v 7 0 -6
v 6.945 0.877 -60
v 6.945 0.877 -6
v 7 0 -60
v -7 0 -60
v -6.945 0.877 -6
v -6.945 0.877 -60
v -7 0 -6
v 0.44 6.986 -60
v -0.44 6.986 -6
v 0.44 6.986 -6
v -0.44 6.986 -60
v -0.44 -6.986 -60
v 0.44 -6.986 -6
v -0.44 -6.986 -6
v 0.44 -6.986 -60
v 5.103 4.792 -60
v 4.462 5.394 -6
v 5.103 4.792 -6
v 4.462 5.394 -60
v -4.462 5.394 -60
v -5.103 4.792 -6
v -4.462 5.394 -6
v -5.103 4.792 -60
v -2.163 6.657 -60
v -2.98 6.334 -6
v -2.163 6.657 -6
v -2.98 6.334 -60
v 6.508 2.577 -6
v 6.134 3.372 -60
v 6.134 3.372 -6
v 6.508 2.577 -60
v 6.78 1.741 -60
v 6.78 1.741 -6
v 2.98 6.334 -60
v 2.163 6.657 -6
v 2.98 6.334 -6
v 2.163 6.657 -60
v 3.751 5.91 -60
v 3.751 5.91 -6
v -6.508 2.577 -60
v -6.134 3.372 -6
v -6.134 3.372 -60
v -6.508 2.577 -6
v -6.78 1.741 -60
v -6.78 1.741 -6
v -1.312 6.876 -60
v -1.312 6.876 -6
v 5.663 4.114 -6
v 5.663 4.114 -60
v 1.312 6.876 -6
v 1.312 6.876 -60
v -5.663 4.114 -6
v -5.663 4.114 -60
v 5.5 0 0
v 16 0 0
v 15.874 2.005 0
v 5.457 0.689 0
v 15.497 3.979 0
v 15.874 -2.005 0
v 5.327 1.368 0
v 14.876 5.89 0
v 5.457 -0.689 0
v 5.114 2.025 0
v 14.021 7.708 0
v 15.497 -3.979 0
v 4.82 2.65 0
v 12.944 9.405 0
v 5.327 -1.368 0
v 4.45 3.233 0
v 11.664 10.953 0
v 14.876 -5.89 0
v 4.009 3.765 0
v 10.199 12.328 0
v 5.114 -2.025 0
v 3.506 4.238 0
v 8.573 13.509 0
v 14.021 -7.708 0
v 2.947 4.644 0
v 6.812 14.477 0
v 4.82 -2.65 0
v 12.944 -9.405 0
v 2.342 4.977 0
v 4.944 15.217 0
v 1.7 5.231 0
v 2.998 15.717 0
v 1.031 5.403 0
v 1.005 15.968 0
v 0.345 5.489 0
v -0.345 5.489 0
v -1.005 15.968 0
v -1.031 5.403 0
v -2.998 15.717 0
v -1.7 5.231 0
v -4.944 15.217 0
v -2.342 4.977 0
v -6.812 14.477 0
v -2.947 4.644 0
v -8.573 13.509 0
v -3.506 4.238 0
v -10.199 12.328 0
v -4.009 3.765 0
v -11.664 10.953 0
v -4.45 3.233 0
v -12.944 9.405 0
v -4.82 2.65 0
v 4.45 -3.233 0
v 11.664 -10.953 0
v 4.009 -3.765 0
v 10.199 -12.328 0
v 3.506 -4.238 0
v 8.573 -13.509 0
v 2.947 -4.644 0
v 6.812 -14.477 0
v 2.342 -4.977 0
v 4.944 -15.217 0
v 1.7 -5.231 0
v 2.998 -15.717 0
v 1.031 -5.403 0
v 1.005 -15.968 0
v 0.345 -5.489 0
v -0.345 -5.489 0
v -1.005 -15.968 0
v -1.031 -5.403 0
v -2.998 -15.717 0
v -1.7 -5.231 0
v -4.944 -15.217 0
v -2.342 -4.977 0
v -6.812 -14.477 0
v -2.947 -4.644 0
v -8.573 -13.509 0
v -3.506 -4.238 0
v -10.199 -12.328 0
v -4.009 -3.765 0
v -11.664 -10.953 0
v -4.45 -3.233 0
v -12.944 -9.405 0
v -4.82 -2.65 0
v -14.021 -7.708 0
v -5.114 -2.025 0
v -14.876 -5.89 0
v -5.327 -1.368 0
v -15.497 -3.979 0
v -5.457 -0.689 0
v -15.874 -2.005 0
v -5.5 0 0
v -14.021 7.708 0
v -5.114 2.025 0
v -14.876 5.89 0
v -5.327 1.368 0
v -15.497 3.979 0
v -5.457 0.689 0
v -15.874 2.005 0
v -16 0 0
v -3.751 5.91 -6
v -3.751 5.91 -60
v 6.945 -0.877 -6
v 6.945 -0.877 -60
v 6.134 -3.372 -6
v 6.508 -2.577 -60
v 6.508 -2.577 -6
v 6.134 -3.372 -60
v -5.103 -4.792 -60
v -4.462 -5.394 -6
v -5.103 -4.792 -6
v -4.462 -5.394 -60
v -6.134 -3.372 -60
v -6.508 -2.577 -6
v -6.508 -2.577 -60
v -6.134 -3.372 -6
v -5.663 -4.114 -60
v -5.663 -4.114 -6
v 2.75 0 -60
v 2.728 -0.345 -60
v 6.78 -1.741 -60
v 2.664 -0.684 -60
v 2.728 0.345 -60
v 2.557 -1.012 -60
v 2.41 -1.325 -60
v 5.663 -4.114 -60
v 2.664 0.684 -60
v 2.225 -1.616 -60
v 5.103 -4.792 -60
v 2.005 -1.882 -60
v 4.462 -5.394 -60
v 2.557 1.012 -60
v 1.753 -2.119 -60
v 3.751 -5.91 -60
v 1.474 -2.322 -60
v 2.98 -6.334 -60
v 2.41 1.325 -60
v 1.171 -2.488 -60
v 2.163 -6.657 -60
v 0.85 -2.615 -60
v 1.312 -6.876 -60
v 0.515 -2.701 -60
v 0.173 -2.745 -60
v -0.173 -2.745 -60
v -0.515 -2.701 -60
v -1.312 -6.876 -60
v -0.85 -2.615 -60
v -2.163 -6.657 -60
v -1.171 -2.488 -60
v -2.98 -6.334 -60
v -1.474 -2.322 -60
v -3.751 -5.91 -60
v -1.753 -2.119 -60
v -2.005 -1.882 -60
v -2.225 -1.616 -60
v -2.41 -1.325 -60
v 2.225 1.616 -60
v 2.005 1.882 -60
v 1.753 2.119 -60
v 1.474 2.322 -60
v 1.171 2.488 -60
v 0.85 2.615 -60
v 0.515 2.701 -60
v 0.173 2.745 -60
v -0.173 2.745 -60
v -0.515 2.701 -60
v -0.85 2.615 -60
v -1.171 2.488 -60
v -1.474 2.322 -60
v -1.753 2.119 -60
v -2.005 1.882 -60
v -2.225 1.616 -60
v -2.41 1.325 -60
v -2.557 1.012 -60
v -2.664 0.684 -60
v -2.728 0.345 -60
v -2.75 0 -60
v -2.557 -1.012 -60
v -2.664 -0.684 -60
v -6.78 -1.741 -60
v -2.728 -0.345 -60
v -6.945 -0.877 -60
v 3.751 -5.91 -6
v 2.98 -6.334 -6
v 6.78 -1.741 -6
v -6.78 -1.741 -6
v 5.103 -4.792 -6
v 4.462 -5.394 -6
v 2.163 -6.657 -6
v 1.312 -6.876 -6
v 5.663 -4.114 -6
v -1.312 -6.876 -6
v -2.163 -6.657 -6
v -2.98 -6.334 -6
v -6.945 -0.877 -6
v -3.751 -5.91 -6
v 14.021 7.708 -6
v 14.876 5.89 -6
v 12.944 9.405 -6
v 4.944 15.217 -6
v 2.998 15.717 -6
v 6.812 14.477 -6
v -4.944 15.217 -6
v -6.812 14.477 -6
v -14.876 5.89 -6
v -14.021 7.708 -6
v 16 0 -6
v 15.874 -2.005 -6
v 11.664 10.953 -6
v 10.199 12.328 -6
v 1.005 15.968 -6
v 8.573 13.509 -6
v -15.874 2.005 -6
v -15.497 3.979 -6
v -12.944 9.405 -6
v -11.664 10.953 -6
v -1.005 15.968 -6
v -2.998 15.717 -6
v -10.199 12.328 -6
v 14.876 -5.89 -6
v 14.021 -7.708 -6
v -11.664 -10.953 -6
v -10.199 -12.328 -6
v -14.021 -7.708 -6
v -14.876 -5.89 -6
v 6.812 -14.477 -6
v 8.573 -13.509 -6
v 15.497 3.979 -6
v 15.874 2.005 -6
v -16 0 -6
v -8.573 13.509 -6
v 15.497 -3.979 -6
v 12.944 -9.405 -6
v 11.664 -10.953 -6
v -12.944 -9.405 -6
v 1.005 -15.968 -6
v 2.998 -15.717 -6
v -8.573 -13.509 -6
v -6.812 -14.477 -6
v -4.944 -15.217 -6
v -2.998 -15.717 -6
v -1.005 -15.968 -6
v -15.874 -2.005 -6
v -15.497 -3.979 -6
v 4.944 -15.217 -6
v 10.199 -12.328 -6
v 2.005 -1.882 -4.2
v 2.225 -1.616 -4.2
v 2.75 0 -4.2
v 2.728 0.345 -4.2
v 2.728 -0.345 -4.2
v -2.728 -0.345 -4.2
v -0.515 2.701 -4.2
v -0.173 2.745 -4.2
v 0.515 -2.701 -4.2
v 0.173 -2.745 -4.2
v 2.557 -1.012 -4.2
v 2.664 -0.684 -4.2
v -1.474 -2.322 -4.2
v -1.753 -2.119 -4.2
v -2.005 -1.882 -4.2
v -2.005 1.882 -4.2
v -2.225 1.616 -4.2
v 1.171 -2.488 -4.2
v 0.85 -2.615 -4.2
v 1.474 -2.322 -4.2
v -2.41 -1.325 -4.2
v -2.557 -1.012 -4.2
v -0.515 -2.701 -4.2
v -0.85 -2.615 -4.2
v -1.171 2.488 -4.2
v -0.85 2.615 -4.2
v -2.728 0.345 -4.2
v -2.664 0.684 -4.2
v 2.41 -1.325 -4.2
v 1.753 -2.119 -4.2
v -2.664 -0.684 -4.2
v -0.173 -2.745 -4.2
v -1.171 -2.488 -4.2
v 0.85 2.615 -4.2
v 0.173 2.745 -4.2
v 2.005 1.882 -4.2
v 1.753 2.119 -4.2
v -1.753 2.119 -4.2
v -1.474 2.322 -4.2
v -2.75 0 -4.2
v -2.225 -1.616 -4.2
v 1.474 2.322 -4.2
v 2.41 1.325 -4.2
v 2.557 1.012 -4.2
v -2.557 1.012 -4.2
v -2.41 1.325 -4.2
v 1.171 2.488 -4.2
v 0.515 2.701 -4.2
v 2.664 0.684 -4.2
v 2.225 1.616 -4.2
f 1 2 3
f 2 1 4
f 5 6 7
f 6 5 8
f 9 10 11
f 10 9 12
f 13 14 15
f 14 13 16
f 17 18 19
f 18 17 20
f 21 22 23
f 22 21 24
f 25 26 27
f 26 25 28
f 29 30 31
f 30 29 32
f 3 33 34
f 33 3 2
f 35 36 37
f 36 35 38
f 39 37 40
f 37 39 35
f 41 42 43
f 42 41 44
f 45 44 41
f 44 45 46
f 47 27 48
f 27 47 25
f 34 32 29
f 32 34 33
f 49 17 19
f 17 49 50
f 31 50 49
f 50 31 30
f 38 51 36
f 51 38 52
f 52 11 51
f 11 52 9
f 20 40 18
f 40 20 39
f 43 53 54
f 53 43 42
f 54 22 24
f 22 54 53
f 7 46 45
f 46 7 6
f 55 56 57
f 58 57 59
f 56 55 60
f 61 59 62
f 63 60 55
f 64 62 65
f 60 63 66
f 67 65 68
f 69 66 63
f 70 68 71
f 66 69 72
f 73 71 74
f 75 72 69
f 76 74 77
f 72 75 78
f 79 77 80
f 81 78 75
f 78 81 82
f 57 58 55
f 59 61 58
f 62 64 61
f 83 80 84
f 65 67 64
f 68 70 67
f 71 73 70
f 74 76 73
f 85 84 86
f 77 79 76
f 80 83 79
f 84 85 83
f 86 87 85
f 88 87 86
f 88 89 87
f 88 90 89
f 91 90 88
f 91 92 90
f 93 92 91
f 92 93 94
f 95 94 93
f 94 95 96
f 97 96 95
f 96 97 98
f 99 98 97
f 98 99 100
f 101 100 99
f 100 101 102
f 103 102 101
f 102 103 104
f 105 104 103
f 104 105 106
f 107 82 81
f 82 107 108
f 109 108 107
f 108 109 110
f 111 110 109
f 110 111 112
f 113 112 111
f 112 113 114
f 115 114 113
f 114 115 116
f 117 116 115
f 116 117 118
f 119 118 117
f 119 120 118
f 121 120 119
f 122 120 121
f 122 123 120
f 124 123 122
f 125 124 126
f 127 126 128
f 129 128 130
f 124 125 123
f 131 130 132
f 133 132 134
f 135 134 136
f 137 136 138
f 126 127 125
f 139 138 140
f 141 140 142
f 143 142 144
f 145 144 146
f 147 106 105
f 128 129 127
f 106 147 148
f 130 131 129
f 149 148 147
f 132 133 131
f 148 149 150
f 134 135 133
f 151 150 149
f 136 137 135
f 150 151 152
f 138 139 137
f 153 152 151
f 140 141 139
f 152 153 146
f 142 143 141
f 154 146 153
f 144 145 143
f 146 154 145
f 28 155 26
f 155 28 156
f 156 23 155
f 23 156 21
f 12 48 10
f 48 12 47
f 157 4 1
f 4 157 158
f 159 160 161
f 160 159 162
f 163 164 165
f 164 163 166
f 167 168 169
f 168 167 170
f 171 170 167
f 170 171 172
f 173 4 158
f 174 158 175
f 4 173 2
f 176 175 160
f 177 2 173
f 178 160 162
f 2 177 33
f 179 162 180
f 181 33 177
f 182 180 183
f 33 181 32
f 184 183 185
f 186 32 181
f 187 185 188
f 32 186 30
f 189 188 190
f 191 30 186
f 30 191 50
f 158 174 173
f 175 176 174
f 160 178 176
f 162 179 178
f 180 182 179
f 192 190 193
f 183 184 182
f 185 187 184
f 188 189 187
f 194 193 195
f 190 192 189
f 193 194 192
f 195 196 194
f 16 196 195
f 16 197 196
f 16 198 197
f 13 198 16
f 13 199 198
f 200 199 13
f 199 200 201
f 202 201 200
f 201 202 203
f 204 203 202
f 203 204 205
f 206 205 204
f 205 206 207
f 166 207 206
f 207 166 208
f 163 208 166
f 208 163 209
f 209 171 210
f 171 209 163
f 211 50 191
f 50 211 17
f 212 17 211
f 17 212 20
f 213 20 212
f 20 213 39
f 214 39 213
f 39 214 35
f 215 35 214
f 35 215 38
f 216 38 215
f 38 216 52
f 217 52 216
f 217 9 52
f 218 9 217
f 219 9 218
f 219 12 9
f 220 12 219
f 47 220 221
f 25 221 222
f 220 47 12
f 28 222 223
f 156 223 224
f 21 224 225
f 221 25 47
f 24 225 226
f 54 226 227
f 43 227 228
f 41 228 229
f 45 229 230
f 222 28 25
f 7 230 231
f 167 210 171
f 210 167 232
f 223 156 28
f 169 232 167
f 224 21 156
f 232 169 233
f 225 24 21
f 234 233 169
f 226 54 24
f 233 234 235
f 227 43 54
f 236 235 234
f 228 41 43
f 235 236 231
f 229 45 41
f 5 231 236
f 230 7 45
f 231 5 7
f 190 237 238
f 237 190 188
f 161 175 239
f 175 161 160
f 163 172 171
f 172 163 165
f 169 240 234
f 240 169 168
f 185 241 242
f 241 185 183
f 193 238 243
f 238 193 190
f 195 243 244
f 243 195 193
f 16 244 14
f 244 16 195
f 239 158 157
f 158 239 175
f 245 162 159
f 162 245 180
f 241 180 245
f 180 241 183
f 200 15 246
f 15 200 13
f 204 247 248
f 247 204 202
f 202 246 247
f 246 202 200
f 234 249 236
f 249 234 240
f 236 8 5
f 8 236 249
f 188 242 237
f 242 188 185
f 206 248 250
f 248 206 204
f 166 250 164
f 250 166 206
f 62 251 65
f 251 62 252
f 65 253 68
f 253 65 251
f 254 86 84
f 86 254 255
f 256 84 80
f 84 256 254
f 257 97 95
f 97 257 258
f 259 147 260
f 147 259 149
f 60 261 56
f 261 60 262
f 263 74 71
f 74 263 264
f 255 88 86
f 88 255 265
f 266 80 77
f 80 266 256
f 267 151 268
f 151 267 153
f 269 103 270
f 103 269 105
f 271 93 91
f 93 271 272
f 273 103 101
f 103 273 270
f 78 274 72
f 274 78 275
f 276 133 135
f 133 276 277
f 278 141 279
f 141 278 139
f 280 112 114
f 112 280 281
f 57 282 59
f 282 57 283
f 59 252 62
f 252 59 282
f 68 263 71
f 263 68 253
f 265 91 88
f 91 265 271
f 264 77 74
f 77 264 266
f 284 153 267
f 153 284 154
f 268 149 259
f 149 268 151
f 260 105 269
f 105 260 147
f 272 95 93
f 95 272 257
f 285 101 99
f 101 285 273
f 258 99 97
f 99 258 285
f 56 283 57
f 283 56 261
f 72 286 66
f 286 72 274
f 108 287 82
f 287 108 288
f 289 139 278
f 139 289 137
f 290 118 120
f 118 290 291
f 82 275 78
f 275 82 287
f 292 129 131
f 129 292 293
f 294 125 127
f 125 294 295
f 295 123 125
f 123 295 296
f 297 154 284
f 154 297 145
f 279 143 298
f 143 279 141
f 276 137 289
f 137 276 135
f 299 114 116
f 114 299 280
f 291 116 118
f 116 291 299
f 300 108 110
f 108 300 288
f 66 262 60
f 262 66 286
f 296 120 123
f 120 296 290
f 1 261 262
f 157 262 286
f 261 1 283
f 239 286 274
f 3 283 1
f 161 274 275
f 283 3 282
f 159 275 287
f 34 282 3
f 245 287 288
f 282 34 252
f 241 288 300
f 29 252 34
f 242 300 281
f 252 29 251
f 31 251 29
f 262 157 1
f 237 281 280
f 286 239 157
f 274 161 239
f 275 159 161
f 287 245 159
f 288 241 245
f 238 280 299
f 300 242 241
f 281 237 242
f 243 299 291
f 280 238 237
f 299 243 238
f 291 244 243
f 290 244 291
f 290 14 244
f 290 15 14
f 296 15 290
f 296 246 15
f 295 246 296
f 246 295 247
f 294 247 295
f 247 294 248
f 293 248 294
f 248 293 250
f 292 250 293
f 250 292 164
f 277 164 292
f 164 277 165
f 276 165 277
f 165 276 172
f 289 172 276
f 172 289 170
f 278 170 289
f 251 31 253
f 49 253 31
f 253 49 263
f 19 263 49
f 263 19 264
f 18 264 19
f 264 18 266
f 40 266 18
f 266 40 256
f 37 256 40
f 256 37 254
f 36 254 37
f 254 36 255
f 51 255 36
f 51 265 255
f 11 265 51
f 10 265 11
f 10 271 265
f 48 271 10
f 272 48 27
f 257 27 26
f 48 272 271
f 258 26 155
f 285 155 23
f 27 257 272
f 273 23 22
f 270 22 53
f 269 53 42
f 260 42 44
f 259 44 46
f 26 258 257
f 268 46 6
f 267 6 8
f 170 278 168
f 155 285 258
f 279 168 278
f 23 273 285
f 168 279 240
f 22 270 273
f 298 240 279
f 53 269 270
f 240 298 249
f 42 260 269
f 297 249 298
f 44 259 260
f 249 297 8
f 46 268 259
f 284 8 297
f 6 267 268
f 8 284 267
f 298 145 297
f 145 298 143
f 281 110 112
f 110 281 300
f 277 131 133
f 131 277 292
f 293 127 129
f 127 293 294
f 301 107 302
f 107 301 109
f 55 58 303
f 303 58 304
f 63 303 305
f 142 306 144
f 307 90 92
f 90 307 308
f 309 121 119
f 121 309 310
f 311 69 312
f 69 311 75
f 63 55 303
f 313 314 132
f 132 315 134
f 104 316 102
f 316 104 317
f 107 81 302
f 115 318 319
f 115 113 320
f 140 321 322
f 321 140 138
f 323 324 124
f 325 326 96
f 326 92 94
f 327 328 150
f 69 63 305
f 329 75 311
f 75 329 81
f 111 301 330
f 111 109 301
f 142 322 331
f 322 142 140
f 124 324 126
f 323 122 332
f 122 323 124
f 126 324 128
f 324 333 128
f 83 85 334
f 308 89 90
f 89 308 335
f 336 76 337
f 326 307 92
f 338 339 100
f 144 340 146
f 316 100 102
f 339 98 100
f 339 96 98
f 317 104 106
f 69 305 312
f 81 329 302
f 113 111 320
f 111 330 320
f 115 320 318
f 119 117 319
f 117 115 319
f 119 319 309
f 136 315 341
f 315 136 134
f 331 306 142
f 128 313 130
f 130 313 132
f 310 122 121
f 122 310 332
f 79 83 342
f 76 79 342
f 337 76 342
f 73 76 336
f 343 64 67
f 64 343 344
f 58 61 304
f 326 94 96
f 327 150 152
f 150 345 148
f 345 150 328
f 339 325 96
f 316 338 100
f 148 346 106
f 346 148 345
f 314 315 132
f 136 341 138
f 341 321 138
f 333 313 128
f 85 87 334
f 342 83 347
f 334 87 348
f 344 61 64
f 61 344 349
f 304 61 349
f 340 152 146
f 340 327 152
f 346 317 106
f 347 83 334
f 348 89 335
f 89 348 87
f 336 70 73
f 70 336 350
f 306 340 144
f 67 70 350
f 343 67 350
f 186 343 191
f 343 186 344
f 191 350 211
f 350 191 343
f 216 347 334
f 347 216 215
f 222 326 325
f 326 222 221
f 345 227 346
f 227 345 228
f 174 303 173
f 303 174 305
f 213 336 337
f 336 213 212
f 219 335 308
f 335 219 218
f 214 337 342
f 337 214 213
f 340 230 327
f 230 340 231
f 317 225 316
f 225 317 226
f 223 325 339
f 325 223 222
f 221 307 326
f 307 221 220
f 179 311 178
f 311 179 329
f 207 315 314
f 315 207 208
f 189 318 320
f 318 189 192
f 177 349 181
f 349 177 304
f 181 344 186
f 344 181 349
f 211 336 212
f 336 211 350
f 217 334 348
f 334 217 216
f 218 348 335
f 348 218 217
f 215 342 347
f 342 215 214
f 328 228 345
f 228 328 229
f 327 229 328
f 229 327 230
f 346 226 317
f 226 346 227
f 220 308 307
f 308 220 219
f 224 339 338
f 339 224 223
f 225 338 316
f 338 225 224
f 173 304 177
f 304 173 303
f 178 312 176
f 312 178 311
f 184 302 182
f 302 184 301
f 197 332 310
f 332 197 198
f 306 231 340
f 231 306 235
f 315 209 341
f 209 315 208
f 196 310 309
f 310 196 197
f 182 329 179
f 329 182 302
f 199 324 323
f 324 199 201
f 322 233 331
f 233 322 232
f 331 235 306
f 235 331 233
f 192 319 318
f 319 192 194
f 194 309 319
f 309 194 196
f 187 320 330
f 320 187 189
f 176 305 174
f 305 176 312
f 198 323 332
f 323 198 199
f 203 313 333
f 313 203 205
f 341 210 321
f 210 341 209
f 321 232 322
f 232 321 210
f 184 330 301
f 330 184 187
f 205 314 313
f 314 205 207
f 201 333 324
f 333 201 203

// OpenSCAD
$fn = 50;


difference() {
	union() {
		translate(v = [0, 0, -60.0000000000]) {
			cylinder(h = 60, r = 7.0000000000);
		}
		translate(v = [0, 0, -6.0000000000]) {
			cylinder(h = 6, r = 16.0000000000);
		}
	}
	union() {
		translate(v = [0, 0, 0]) {
			rotate(a = [0, 0, 0]) {
				difference() {
					union() {
						#translate(v = [0, 0, -60.0000000000]) {
							cylinder(h = 60, r = 2.2500000000);
						}
						#translate(v = [0, 0, -4.2000000000]) {
							cylinder(h = 4.2000000000, r = 7.0000000000, r1 = 2.7500000000, r2 = 5.5000000000);
						}
						#translate(v = [0, 0, -60.0000000000]) {
							cylinder(h = 60, r = 2.7500000000);
						}
						#translate(v = [0, 0, -60.0000000000]) {
							cylinder(h = 60, r = 2.2500000000);
						}
					}
					union();
				}
			}
		}
	}
}
